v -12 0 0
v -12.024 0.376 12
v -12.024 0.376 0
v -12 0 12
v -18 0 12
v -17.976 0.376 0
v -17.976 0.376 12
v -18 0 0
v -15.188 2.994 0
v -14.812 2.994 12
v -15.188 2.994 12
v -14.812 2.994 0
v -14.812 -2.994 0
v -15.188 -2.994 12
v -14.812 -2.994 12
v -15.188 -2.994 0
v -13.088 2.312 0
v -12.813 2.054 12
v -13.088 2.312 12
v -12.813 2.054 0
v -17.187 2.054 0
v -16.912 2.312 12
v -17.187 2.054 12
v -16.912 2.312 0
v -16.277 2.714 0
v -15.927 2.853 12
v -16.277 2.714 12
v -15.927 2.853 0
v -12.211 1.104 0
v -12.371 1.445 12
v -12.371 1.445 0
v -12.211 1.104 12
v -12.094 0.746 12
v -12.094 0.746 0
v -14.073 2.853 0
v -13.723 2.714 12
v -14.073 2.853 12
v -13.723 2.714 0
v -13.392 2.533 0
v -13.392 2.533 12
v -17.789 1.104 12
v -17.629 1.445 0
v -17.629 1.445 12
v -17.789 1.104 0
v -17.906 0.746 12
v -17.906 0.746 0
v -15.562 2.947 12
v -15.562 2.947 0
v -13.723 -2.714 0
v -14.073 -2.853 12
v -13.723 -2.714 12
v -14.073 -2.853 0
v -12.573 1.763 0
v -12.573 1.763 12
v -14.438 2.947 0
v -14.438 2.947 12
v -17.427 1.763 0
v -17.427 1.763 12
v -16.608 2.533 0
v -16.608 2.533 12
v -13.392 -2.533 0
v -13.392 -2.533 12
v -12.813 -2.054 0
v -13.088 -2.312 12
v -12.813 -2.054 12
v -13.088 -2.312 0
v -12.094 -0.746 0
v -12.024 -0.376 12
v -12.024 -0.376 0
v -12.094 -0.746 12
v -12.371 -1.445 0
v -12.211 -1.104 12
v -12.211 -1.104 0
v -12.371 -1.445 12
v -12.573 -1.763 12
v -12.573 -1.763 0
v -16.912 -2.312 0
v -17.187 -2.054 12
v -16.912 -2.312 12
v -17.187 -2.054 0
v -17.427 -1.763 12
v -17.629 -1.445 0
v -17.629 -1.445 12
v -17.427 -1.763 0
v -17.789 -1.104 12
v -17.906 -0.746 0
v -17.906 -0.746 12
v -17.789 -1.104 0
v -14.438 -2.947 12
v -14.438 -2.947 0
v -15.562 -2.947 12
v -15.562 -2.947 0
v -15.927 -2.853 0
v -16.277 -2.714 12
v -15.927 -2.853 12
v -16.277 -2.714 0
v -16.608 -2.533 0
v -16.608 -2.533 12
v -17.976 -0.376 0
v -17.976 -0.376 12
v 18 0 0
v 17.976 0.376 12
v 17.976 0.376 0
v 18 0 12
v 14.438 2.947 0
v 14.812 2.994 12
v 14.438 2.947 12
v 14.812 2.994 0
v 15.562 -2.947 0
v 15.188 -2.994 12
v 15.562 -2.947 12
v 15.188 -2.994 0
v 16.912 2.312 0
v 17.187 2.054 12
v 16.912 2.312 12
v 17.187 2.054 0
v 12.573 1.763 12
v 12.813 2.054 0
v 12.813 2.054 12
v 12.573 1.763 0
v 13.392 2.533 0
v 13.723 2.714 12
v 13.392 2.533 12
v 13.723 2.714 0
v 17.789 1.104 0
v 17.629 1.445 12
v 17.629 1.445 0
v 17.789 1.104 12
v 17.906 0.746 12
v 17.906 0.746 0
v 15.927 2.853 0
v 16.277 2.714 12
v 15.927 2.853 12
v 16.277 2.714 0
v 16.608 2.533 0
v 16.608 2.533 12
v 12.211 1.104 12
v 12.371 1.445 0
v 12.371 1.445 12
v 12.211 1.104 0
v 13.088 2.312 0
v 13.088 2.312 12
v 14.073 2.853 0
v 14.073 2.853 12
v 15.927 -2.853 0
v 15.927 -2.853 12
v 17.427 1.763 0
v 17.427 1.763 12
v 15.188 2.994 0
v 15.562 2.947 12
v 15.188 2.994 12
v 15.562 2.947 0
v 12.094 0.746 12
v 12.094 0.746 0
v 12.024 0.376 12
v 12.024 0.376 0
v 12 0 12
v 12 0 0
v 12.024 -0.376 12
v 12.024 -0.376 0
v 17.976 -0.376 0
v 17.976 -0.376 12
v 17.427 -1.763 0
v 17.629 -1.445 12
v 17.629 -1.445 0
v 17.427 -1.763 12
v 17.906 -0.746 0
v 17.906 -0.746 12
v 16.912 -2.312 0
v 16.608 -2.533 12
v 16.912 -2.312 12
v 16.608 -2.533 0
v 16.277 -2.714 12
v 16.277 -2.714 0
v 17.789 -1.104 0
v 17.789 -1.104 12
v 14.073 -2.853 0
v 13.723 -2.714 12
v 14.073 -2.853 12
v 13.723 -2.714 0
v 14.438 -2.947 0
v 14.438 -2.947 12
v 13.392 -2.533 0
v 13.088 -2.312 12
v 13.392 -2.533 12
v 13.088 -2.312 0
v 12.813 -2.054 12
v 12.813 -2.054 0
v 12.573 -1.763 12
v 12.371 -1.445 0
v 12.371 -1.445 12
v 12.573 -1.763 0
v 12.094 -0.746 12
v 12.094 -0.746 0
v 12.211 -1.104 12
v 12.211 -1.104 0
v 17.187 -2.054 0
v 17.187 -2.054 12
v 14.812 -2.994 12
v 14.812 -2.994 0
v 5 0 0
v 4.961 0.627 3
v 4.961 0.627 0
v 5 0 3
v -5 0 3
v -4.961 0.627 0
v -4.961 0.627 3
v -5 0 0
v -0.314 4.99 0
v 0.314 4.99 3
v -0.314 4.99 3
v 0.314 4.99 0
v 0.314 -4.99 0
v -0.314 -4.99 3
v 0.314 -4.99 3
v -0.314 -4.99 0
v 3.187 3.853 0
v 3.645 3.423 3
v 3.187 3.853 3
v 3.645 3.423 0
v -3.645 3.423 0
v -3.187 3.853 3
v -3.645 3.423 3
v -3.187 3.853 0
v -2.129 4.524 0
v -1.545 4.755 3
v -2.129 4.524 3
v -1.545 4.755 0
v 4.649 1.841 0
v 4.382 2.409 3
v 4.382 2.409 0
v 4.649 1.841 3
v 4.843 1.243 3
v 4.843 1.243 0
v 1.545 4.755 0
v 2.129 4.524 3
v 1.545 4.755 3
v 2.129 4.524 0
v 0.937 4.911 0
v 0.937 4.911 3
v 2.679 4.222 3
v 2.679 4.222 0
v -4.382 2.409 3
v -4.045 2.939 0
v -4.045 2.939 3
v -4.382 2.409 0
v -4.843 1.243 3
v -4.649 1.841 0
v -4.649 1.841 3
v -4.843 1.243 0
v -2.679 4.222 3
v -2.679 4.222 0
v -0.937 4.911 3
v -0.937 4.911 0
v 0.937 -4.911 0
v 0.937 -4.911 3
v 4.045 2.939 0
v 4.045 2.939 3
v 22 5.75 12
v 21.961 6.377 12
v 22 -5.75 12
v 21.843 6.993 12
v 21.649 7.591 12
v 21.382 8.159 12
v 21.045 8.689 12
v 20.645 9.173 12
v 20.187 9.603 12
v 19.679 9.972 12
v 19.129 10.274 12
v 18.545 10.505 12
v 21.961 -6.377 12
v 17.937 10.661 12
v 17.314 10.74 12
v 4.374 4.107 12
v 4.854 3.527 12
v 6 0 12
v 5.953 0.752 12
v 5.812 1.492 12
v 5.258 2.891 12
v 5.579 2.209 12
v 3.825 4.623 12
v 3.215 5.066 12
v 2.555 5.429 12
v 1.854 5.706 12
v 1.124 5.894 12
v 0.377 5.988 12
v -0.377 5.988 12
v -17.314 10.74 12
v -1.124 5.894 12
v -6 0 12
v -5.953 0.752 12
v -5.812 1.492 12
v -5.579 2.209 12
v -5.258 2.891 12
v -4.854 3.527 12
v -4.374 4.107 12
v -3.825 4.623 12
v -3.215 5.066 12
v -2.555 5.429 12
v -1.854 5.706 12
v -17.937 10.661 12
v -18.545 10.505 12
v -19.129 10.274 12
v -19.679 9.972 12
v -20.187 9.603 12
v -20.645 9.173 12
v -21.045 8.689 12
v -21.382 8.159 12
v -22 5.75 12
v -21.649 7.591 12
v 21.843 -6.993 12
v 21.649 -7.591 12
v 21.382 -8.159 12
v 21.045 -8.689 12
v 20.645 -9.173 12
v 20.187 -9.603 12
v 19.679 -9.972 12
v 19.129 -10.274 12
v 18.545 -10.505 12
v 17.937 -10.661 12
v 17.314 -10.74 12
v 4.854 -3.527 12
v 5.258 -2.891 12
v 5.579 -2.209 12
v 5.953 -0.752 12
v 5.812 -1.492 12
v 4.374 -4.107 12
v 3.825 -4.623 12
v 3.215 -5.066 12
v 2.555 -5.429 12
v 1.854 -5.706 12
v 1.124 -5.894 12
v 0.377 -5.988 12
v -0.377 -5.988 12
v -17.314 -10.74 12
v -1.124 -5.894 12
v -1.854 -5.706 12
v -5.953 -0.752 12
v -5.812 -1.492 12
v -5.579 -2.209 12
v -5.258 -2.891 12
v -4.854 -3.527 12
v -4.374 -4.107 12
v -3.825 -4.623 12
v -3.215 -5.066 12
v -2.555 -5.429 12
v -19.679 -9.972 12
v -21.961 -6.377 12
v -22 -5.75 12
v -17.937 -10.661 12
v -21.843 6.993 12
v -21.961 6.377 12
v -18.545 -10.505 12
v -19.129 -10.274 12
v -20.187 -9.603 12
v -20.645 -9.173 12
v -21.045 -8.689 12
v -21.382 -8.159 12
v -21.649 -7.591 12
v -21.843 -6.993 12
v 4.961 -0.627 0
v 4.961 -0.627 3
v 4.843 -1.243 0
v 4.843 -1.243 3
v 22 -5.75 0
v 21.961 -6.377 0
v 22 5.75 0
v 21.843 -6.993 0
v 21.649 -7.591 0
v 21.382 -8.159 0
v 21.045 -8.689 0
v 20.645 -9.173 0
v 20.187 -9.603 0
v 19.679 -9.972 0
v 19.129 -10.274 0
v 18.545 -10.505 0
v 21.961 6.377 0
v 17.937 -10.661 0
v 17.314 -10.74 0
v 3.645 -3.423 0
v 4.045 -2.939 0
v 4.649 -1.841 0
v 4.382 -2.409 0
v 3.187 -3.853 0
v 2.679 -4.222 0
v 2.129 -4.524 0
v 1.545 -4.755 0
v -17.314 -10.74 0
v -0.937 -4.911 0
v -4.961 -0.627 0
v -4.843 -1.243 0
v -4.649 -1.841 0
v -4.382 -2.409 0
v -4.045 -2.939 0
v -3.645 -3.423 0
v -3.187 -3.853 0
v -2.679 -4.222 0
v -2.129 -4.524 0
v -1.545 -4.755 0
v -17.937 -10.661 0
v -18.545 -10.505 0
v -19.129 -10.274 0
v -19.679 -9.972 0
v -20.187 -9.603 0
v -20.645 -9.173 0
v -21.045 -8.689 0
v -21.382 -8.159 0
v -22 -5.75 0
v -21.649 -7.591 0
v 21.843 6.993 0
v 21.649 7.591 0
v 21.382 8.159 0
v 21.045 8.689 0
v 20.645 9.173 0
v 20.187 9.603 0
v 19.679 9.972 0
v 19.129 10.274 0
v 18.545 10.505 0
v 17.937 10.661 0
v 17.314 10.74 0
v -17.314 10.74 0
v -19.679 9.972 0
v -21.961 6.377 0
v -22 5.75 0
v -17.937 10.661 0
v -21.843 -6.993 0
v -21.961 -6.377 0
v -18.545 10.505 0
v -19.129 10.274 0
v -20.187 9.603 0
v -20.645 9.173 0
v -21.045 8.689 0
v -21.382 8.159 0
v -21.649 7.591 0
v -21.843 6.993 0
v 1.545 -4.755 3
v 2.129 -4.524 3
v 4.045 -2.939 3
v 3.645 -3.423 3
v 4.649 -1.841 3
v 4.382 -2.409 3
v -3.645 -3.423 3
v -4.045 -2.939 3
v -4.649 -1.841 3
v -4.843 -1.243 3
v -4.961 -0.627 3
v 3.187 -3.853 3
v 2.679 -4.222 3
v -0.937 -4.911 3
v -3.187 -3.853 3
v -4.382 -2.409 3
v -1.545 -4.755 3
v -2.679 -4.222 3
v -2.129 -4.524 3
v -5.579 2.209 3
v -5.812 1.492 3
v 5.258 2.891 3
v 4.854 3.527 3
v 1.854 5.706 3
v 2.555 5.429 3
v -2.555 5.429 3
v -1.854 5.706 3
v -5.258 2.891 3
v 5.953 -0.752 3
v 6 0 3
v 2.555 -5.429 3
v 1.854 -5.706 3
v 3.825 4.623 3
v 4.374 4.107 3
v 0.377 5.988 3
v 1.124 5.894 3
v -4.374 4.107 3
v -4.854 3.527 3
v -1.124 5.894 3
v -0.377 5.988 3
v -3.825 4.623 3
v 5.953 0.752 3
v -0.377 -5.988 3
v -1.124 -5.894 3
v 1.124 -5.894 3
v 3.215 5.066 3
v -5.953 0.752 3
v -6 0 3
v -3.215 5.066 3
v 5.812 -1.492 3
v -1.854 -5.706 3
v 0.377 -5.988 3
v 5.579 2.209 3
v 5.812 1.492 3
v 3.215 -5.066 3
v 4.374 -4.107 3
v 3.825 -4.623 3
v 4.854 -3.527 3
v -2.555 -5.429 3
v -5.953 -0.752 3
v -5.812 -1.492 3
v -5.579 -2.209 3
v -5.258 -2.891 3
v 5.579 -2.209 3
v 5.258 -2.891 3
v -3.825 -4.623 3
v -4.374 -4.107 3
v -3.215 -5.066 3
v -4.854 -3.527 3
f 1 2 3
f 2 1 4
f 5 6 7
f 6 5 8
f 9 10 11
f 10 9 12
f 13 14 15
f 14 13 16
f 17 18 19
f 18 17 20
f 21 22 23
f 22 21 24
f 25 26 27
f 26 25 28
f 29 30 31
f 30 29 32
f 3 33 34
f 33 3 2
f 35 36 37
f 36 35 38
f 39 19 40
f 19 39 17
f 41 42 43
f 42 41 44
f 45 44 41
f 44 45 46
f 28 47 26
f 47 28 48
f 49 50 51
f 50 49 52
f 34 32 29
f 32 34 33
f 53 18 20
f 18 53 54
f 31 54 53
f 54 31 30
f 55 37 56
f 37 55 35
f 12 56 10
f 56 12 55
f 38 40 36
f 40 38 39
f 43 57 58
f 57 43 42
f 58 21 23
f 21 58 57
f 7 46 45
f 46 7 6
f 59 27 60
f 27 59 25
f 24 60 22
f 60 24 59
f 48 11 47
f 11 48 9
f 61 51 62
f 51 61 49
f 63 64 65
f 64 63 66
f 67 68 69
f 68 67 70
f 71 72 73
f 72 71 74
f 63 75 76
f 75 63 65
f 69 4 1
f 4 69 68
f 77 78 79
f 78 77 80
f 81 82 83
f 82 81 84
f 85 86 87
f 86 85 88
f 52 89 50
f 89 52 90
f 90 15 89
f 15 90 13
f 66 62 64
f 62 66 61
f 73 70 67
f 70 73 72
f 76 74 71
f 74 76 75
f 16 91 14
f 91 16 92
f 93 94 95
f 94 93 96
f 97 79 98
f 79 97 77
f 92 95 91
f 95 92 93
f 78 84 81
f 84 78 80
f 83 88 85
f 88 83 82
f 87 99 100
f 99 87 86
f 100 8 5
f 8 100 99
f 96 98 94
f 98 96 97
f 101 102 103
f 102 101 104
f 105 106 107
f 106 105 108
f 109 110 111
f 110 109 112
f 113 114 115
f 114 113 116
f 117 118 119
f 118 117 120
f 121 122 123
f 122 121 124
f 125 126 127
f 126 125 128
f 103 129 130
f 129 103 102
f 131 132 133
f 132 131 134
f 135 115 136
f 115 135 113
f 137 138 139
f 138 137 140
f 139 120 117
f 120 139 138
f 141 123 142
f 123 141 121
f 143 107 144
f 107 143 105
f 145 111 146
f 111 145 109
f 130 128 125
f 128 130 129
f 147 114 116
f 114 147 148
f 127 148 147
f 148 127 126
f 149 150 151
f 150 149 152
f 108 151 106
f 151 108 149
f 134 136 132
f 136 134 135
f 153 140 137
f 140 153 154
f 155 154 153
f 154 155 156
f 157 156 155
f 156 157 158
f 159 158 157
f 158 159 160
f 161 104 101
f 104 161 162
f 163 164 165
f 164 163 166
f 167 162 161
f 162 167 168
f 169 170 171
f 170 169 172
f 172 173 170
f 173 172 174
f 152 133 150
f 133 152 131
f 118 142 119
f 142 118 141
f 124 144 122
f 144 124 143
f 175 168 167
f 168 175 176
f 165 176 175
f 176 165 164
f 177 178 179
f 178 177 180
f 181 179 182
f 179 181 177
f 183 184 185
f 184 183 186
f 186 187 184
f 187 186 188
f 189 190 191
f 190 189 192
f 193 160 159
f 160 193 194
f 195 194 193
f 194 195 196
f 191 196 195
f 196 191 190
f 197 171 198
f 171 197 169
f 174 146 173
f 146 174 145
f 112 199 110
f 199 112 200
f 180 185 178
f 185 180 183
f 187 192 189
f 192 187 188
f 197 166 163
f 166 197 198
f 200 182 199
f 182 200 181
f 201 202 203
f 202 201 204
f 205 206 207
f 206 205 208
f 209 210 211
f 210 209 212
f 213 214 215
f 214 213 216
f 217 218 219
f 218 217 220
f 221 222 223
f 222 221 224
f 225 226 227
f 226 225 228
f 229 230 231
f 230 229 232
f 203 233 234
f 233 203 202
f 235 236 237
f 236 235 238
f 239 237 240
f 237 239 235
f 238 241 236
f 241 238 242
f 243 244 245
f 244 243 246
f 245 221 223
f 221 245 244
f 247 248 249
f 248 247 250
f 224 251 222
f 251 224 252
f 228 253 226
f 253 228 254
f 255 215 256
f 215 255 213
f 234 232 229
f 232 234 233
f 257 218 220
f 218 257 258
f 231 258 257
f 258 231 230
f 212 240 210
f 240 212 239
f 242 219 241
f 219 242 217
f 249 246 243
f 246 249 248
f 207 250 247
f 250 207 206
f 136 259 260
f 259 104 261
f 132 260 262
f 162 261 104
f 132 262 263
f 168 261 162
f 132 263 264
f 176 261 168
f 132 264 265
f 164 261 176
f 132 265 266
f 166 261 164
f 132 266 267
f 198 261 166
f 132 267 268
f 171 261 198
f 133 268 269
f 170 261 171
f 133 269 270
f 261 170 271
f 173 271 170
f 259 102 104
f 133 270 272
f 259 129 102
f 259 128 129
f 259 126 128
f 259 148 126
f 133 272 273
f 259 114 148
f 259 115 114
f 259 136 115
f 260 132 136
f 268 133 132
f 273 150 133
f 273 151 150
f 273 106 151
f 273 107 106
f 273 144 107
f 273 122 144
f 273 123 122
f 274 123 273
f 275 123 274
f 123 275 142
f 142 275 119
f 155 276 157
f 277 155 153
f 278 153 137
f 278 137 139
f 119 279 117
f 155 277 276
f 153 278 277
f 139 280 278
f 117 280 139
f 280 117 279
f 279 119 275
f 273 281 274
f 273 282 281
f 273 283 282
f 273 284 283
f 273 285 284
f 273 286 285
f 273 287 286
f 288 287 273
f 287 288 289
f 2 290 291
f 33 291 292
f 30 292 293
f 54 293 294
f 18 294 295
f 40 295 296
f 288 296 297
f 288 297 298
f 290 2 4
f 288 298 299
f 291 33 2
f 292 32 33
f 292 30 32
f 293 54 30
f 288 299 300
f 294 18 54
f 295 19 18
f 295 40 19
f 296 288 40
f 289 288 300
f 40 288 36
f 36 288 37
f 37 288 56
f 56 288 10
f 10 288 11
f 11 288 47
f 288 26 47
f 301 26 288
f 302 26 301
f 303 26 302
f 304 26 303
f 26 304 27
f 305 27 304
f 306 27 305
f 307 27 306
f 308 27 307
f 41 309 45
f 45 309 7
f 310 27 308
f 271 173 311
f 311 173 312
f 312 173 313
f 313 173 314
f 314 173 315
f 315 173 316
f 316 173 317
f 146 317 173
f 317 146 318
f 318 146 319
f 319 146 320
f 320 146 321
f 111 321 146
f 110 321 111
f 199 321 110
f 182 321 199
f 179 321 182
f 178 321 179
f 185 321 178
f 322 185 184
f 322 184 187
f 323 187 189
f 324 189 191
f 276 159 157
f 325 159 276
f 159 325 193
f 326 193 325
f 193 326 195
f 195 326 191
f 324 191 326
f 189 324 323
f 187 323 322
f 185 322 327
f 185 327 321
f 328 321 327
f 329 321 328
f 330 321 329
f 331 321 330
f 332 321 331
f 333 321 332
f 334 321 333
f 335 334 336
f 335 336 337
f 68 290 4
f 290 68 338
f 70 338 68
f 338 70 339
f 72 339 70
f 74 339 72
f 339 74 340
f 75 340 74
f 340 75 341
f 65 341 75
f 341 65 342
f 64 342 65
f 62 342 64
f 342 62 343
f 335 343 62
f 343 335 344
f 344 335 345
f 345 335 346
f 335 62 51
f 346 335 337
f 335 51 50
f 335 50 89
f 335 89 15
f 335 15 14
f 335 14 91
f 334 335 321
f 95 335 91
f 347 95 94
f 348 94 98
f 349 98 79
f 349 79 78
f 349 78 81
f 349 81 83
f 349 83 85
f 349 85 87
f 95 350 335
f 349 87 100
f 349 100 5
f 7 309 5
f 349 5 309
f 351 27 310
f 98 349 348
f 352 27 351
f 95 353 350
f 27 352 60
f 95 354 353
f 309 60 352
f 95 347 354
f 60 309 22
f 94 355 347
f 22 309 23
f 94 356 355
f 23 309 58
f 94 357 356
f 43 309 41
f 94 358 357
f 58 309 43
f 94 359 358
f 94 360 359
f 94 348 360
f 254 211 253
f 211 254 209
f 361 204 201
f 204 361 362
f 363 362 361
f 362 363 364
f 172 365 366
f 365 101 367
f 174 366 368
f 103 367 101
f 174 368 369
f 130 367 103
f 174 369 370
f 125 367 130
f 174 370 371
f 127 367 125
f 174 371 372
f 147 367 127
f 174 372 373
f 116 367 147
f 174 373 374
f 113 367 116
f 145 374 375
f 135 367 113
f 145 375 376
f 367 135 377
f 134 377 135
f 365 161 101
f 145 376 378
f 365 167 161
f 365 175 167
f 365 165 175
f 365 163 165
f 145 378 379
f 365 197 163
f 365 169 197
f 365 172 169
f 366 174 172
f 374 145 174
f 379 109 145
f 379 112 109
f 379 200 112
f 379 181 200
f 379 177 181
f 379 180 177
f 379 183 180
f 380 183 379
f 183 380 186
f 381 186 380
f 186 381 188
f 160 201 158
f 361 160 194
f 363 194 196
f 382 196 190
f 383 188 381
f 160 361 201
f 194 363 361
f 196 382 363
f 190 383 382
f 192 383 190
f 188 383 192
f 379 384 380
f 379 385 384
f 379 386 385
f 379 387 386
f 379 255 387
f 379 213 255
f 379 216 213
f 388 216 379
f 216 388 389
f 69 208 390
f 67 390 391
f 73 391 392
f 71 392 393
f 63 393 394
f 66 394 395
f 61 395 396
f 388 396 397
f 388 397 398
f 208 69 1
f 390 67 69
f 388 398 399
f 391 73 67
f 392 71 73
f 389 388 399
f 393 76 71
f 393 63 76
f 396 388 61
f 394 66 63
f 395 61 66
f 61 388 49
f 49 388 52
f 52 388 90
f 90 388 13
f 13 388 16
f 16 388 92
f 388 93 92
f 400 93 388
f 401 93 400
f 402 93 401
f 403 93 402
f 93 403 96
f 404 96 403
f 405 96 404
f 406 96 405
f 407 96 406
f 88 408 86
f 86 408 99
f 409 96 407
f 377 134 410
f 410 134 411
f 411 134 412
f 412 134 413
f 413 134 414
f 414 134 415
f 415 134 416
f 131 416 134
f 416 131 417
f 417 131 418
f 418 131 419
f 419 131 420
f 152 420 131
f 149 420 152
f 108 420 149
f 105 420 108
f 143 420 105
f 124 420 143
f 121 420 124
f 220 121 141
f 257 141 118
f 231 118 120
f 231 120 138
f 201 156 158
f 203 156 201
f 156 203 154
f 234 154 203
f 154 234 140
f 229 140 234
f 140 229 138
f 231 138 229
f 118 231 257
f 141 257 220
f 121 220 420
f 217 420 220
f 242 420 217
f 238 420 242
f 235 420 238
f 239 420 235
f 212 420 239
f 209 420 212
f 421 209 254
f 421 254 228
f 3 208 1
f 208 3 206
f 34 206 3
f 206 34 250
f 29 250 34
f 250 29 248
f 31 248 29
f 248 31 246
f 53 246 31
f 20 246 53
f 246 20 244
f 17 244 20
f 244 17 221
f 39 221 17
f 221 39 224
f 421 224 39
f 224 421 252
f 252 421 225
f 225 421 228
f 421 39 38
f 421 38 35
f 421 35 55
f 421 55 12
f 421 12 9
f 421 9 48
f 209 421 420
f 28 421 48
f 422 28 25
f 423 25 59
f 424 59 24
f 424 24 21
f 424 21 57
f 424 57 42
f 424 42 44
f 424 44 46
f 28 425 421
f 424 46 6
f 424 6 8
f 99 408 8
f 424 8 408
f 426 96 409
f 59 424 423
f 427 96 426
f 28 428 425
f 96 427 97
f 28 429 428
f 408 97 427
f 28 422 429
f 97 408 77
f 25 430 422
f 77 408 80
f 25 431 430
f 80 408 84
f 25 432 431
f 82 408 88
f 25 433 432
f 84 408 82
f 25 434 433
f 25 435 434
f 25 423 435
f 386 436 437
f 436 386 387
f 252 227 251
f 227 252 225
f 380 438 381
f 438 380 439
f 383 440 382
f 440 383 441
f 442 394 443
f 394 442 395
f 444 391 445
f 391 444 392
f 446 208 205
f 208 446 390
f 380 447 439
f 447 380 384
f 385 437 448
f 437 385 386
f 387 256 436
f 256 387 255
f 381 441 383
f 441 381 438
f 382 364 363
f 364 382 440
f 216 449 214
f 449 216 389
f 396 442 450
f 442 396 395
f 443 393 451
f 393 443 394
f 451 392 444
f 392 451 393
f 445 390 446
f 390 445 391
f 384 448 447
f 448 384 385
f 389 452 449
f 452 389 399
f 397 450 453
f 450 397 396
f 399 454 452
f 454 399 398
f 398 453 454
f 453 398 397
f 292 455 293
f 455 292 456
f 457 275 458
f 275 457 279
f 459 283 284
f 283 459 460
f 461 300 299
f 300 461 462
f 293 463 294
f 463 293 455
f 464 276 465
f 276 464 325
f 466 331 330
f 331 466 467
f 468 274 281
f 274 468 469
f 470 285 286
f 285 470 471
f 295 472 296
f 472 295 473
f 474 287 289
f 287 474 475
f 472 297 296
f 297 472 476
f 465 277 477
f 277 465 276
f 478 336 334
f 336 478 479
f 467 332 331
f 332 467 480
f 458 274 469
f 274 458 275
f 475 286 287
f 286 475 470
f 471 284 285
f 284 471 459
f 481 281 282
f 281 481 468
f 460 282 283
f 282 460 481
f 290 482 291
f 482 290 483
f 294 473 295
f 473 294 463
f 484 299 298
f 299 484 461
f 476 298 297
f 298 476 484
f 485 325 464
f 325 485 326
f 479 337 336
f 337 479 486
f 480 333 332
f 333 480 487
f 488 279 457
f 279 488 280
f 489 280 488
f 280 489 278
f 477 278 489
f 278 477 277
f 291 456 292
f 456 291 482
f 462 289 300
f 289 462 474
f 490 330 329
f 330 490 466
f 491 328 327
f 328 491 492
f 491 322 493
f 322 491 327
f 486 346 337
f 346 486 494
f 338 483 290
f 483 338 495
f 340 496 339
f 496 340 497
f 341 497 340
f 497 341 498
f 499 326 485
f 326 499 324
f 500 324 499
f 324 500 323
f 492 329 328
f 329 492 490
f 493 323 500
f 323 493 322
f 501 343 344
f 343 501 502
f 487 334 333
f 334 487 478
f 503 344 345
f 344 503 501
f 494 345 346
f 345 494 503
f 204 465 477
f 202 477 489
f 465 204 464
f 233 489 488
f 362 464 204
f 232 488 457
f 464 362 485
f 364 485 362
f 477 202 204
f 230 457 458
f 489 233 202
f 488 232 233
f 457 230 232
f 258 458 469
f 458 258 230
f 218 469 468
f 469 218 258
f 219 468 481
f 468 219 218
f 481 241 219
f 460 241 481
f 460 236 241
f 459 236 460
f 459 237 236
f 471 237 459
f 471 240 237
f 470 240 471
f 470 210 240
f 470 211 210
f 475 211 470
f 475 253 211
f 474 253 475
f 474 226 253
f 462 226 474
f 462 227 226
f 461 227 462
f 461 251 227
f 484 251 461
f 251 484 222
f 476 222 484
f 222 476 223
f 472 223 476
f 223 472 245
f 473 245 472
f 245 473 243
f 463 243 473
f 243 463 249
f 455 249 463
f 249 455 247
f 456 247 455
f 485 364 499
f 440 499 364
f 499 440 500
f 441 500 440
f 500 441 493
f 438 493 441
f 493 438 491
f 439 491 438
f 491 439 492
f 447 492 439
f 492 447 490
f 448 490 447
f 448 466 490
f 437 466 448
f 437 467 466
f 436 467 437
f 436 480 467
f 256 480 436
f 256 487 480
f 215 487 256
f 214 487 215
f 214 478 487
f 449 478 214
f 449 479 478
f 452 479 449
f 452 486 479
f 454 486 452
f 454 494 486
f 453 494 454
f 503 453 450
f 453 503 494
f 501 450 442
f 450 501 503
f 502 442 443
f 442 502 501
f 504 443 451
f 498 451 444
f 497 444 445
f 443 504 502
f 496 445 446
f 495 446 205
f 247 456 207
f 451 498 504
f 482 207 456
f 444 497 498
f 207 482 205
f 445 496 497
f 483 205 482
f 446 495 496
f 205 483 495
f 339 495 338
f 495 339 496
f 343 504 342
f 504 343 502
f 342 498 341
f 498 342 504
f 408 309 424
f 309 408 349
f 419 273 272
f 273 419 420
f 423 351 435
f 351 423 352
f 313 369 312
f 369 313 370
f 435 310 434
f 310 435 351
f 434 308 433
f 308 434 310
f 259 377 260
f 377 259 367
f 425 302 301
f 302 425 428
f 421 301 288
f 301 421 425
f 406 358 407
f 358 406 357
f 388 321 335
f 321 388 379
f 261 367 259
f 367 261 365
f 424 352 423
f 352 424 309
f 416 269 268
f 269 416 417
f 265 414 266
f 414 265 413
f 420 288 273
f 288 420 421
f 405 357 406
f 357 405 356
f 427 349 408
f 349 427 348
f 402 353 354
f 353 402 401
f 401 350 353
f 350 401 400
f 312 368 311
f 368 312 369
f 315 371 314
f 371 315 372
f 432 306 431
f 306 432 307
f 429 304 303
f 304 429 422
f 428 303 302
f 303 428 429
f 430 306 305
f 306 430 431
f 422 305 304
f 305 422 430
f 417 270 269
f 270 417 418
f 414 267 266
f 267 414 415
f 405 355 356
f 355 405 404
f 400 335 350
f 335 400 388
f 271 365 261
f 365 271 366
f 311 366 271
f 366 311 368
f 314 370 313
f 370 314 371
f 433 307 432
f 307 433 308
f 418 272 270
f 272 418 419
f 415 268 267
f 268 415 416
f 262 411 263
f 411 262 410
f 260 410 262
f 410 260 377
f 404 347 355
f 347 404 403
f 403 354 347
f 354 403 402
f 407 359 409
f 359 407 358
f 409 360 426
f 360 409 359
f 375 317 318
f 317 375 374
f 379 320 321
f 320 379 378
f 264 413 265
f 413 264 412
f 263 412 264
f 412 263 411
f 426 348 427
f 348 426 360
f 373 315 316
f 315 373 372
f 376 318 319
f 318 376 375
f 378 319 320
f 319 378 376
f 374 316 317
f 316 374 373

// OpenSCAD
$fn = 50;


difference() {
	union() {
		hull() {
			translate(v = [-17.0000000000, 5.7500000000, 0]) {
				cylinder(h = 12, r = 5);
			}
			translate(v = [17.0000000000, 5.7500000000, 0]) {
				cylinder(h = 12, r = 5);
			}
			translate(v = [-17.0000000000, -5.7500000000, 0]) {
				cylinder(h = 12, r = 5);
			}
			translate(v = [17.0000000000, -5.7500000000, 0]) {
				cylinder(h = 12, r = 5);
			}
		}
	}
	union() {
		translate(v = [-15.0000000000, 0.0000000000, -100.0000000000]) {
			cylinder(h = 200, r = 3.0000000000);
		}
		translate(v = [15.0000000000, 0.0000000000, -100.0000000000]) {
			cylinder(h = 200, r = 3.0000000000);
		}
		translate(v = [15.0000000000, 0.0000000000, -100.0000000000]) {
			cylinder(h = 200, r = 3.0000000000);
		}
		translate(v = [-15.0000000000, 0.0000000000, -100.0000000000]) {
			cylinder(h = 200, r = 1.5000000000);
		}
		translate(v = [15.0000000000, 0.0000000000, -100.0000000000]) {
			cylinder(h = 200, r = 1.5000000000);
		}
		translate(v = [-15.0000000000, 0.0000000000, -100.0000000000]) {
			cylinder(h = 200, r = 1.5000000000);
		}
		translate(v = [15.0000000000, 0.0000000000, -100.0000000000]) {
			cylinder(h = 200, r = 1.5000000000);
		}
		translate(v = [-15.0000000000, 0.0000000000, -100.0000000000]) {
			cylinder(h = 200, r = 1.5000000000);
		}
		translate(v = [15.0000000000, 0.0000000000, -100.0000000000]) {
			cylinder(h = 200, r = 1.5000000000);
		}
		#cylinder(h = 12, r = 5.0000000000);
		#translate(v = [0, 0, 3]) {
			cylinder(h = 9, r = 6.0000000000);
		}
	}
}
